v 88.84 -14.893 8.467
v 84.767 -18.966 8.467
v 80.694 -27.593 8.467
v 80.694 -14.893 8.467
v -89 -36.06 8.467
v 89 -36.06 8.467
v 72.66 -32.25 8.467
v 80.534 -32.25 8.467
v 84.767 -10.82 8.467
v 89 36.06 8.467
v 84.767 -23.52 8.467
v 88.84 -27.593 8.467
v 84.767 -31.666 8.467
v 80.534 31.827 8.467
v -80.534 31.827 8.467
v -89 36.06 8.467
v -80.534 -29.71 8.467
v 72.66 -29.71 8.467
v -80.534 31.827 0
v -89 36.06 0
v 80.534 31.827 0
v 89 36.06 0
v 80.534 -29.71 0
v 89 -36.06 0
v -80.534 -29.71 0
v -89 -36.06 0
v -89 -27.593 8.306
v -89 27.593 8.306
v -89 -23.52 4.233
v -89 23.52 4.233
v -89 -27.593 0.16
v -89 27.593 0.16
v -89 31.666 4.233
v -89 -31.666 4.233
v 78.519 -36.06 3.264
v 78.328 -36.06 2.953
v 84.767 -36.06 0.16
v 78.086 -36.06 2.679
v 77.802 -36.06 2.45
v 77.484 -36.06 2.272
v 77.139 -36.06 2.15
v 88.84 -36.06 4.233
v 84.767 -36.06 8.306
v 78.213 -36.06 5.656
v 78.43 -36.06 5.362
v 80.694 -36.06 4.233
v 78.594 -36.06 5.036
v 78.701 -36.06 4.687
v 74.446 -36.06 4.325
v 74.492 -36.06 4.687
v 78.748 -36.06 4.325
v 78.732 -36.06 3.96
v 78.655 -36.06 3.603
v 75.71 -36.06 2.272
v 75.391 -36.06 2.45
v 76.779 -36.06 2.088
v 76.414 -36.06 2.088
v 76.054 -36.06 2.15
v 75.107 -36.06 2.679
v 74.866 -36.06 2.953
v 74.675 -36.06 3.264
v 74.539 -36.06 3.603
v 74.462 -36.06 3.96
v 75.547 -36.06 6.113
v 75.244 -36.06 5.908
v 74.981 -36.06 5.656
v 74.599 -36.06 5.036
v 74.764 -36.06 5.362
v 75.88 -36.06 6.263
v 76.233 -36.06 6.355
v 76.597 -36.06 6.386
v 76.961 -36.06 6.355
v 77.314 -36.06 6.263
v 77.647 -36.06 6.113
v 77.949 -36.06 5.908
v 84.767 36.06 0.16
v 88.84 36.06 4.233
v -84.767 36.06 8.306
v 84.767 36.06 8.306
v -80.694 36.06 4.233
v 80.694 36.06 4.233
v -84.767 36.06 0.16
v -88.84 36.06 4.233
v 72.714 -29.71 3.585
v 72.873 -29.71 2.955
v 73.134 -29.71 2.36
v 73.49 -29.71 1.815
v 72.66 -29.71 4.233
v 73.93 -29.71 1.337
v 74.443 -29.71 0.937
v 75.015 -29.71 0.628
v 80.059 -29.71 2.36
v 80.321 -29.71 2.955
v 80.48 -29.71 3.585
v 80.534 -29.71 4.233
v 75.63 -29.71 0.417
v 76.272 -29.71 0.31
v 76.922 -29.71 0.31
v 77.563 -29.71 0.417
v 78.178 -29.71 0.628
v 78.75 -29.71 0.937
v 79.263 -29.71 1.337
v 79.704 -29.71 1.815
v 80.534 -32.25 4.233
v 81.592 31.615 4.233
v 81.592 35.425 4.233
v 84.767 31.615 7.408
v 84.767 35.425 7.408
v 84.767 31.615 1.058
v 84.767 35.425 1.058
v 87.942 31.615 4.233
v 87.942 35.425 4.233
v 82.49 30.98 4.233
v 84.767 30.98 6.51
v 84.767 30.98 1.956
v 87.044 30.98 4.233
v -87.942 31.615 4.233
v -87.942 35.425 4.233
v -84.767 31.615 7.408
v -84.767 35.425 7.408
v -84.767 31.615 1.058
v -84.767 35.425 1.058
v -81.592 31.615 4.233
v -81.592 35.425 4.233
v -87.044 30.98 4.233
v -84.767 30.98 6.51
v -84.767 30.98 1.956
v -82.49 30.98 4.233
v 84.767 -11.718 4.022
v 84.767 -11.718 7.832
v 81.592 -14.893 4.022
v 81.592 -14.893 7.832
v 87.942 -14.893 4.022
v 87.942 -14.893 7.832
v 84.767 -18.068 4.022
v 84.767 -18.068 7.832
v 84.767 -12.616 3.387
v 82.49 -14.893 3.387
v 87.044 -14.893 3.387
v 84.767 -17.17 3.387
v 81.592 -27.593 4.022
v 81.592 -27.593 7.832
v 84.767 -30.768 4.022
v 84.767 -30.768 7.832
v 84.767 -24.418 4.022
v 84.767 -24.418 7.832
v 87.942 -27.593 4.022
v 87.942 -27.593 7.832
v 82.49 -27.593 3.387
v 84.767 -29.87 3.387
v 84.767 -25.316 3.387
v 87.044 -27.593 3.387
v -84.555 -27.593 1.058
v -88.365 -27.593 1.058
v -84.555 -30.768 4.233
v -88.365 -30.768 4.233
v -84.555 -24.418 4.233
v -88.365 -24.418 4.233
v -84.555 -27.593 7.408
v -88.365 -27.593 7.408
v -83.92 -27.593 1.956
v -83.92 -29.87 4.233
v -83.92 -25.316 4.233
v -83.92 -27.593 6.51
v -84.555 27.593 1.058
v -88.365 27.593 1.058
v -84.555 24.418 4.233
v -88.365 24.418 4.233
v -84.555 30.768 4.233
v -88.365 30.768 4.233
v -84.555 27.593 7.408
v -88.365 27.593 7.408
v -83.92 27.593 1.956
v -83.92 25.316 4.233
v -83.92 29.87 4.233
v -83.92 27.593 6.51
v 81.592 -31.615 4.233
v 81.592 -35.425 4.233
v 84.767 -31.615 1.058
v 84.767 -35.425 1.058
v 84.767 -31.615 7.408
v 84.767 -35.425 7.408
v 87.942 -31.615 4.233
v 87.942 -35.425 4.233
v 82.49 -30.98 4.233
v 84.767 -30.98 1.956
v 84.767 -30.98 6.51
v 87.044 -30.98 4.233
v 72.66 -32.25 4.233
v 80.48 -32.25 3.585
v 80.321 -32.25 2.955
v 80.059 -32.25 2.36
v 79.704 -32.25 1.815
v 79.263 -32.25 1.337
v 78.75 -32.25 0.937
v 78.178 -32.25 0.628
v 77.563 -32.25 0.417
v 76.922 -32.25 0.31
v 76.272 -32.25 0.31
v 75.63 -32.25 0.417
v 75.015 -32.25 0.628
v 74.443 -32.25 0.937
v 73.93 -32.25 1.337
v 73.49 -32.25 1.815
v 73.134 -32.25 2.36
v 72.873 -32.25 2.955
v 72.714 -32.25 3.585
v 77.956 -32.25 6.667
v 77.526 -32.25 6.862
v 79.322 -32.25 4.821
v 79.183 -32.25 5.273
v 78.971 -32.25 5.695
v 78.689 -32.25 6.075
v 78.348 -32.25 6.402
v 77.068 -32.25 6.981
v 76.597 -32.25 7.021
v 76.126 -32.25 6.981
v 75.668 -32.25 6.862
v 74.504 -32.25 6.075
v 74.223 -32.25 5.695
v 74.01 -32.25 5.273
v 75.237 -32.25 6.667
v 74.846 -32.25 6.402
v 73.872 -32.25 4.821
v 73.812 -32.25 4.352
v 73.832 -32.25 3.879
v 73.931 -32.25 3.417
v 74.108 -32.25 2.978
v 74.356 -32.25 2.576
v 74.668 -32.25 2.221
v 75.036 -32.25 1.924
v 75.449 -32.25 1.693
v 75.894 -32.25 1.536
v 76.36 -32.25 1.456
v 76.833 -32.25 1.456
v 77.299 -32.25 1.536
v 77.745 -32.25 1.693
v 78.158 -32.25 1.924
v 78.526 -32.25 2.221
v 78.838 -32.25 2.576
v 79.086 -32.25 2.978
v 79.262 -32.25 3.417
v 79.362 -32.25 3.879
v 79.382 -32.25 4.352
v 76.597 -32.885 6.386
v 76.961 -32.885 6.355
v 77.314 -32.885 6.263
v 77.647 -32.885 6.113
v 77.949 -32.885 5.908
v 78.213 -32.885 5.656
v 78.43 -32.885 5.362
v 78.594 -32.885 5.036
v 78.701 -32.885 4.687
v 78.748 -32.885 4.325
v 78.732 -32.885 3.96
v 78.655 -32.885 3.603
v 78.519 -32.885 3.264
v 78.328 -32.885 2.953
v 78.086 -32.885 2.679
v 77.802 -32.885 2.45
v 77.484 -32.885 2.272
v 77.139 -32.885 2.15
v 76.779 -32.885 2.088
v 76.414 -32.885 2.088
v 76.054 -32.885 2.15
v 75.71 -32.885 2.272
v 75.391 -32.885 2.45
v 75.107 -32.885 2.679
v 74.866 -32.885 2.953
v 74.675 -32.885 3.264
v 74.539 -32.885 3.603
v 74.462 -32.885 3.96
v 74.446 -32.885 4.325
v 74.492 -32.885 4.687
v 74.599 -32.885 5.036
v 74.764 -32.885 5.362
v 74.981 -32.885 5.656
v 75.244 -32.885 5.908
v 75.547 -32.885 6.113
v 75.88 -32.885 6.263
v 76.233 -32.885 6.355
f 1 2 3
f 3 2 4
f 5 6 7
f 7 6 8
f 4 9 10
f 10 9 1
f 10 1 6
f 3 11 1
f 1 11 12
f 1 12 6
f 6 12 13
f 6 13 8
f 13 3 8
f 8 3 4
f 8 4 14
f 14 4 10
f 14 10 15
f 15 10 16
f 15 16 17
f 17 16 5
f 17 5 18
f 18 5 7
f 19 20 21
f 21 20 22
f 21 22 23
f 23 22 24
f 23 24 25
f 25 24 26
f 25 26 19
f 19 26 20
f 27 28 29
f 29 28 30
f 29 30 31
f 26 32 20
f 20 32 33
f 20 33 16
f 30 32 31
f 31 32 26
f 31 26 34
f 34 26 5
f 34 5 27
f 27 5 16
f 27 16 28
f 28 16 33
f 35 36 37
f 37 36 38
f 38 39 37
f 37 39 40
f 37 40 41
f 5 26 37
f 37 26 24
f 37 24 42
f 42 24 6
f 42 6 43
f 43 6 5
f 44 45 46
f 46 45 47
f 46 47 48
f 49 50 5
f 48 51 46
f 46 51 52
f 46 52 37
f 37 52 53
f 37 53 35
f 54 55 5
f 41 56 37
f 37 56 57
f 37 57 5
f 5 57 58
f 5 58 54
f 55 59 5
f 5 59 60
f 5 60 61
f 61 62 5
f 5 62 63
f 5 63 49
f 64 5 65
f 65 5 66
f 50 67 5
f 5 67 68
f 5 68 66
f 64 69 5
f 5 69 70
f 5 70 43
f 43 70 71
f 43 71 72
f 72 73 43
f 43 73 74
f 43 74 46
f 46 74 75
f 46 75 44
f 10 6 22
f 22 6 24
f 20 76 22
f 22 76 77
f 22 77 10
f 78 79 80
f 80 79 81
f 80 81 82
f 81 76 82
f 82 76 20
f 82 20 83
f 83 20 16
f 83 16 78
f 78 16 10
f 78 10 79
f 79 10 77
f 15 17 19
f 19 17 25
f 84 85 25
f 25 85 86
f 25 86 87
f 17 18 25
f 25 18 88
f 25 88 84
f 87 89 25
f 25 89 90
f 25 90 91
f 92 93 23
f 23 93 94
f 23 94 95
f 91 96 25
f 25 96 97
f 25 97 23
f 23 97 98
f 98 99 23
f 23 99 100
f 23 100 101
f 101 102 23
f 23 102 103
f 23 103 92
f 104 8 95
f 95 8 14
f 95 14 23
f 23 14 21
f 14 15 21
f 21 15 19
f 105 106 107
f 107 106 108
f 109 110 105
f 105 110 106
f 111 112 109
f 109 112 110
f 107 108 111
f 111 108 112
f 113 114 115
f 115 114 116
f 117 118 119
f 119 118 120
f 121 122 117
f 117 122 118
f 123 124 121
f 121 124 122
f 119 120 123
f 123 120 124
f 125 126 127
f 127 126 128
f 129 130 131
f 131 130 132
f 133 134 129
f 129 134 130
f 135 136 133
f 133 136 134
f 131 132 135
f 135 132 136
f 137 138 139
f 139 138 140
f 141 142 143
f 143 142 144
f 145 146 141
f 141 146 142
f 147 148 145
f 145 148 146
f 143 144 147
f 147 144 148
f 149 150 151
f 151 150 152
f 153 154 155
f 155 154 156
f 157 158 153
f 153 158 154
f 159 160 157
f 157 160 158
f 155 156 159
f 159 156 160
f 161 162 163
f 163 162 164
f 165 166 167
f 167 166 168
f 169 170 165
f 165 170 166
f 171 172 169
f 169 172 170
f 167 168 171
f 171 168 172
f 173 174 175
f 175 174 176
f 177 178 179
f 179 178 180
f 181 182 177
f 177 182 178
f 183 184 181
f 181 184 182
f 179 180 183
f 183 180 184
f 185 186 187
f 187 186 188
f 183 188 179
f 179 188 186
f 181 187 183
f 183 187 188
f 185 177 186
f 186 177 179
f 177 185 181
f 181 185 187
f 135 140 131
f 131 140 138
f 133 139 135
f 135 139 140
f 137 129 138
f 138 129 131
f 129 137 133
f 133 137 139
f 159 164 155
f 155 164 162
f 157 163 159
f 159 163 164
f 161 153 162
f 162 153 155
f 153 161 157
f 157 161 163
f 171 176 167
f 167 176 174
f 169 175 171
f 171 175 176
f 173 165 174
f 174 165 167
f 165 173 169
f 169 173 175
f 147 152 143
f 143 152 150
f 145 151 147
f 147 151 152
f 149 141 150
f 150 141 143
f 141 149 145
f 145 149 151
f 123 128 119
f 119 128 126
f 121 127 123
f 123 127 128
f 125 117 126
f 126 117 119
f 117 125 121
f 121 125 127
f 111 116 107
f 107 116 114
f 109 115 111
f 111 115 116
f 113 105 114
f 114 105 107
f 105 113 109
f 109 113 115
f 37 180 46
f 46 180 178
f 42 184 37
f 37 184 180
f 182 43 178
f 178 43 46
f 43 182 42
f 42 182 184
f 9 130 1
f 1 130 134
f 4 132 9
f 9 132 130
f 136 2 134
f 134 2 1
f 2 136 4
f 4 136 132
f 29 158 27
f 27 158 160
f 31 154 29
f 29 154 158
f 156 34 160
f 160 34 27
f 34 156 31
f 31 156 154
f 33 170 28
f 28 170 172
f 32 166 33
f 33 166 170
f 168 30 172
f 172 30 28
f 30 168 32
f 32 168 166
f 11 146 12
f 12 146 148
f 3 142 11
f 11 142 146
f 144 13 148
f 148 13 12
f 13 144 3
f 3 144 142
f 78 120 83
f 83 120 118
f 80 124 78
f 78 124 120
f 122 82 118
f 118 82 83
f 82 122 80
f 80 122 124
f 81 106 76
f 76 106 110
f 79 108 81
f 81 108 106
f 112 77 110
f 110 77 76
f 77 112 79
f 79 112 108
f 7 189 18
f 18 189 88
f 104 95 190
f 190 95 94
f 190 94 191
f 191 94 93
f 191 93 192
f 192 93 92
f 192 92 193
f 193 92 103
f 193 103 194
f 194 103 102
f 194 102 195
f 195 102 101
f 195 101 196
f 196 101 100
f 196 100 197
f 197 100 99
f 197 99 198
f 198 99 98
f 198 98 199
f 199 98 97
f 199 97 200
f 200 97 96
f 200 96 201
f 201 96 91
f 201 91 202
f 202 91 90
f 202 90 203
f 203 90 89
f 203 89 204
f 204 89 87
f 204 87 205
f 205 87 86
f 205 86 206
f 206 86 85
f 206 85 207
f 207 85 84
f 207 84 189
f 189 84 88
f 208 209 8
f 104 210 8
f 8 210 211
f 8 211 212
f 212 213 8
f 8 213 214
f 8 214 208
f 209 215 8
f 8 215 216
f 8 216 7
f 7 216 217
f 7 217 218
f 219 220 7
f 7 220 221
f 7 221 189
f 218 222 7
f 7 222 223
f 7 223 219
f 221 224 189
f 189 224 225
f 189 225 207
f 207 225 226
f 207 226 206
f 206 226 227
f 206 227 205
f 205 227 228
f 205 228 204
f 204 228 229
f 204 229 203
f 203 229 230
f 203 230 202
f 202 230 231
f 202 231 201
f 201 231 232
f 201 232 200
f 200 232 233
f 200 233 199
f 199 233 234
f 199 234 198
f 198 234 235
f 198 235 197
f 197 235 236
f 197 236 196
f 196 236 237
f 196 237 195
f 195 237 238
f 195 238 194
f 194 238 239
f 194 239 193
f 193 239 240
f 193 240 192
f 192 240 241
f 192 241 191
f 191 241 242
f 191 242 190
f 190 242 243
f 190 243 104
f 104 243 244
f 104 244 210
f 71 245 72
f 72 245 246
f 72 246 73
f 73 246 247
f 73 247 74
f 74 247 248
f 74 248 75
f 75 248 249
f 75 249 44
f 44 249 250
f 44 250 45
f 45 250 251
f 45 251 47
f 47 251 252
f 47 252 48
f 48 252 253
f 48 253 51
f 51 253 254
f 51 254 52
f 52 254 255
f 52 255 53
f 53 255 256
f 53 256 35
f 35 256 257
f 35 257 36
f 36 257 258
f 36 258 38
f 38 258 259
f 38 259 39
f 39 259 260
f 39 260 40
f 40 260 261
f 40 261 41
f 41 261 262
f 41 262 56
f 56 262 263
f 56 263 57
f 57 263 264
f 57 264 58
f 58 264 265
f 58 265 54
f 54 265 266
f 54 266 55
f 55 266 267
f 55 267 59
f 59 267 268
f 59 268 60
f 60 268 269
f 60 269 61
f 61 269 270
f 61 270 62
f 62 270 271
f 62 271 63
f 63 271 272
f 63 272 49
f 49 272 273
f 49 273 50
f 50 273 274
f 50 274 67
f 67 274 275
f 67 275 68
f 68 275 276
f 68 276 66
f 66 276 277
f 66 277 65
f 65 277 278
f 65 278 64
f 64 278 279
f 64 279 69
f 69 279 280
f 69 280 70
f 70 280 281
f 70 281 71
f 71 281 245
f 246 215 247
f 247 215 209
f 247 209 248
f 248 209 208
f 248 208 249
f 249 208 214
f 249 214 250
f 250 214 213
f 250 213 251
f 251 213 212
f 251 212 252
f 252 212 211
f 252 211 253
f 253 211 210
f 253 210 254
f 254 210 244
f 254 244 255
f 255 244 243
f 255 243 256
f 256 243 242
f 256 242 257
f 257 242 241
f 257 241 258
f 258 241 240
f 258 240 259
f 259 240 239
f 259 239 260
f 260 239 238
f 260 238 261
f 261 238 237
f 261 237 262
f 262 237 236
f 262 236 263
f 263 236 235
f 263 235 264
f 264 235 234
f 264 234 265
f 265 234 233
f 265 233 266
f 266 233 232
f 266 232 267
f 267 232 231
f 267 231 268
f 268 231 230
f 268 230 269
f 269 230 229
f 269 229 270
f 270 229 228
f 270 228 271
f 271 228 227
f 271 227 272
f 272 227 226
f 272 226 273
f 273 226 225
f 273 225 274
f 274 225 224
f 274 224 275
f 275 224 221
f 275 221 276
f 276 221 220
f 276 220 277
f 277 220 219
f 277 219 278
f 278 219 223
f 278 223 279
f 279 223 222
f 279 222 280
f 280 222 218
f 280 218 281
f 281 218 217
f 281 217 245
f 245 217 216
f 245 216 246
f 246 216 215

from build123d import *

# Parameters (mm, degrees)
SKETCH1_W                              = 178.0009902
SKETCH1_H                              = 72.120000116
SKETCH1_W_2                            = 161.067656866
SKETCH1_H_2                            = 61.536666783
BOSS_EXTRUDE1_DEPTH                    = 8.466666667
CUT_EXTRUDE1_DEPTH                     = 5.08
CUT_EXTRUDE2_DEPTH                     = 5.08
CUT_EXTRUDE3_DEPTH                     = 5.08
CUT_EXTRUDE4_DEPTH                     = 5.08
CHAMFER1_SIZE                          = 0.635
CUT_EXTRUDE5_DEPTH                     = 2.54
F_18_0_1695_DIAMETER_HOLE1_D           = 4.3053
F_18_0_1695_DIAMETER_HOLE1_DEPTH       = 3.81
F_18_0_1695_DIAMETER_HOLE1_CSINK_D     = 5.5753
F_18_0_1695_DIAMETER_HOLE1_CSINK_ANGLE = 90


with BuildPart() as part:
    # Sketch1 → Boss-Extrude1 (new body)
    with BuildSketch(Plane.XY):
        Rectangle(SKETCH1_W, SKETCH1_H)
        with Locations((0, 1.058333334)):
            Rectangle(SKETCH1_W_2, SKETCH1_H_2, mode=Mode.SUBTRACT)
    extrude(amount=BOSS_EXTRUDE1_DEPTH)

    # Sketch2 → Cut-Extrude1 (cut)
    with BuildSketch(Plane(origin=(0, 36.060000058, 0), x_dir=(1, 0, 0), z_dir=(0, 1, 0))):
        Polygon((-87.942161767, -4.233333333), (-84.767161767, -1.058333333), (-81.592161767, -4.233333333), (-84.767161767, -7.408333333), align=None)
        Polygon((81.592161767, -4.233333333), (84.767161767, -1.058333333), (87.942161767, -4.233333333), (84.767161767, -7.408333333), align=None)
    extrude(amount=-CUT_EXTRUDE1_DEPTH, mode=Mode.SUBTRACT)

    # Sketch3 → Cut-Extrude2 (cut)
    with BuildSketch(Plane.XY.offset(8.466666667)):
        Polygon((81.592161767, -27.593333392), (84.767161767, -24.418333392), (87.942161767, -27.593333392), (84.767161767, -30.768333392), align=None)
        Polygon((84.767161767, -11.718333392), (87.942161767, -14.893333392), (84.767161767, -18.068333392), (81.592161767, -14.893333392), align=None)
    extrude(amount=-CUT_EXTRUDE2_DEPTH, mode=Mode.SUBTRACT)

    # Sketch4 → Cut-Extrude3 (cut)
    with BuildSketch(Plane.ZY.offset(89.0004951)):
        Polygon((1.058333333, 27.593333392), (4.233333333, 30.768333392), (7.408333333, 27.593333392), (4.233333333, 24.418333392), align=None)
        Polygon((1.058333333, -27.593333392), (4.233333333, -24.418333392), (7.408333333, -27.593333392), (4.233333333, -30.768333392), align=None)
    extrude(amount=-CUT_EXTRUDE3_DEPTH, mode=Mode.SUBTRACT)

    # Sketch5 → Cut-Extrude4 (cut)
    with BuildSketch(Plane.XZ.offset(36.060000058)):
        Polygon((81.592161767, 4.233333333), (84.767161767, 7.408333333), (87.942161767, 4.233333333), (84.767161767, 1.058333333), align=None)
    extrude(amount=-CUT_EXTRUDE4_DEPTH, mode=Mode.SUBTRACT)

    # Chamfer1
    chamfer1_edges = [part.edges().sort_by_distance(p)[0] for p in [
        (83.179661767, -30.980000058, 2.645833333),
        (83.179661767, -30.980000058, 5.820833333),
        (86.354661767, -30.980000058, 5.820833333),
        (86.354661767, -30.980000058, 2.645833333),
        (83.179661767, -36.060000058, 2.645833333),
        (86.354661767, -36.060000058, 2.645833333),
        (86.354661767, -36.060000058, 5.820833333),
        (83.179661767, -36.060000058, 5.820833333),
        (-86.354661767, 30.980000058, 5.820833333),
        (-86.354661767, 30.980000058, 2.645833333),
        (-83.179661767, 30.980000058, 2.645833333),
        (-83.179661767, 30.980000058, 5.820833333),
        (-86.354661767, 36.060000058, 5.820833333),
        (-83.179661767, 36.060000058, 5.820833333),
        (-83.179661767, 36.060000058, 2.645833333),
        (-86.354661767, 36.060000058, 2.645833333),
        (83.179661767, 30.980000058, 5.820833333),
        (83.179661767, 30.980000058, 2.645833333),
        (86.354661767, 30.980000058, 2.645833333),
        (86.354661767, 30.980000058, 5.820833333),
        (83.179661767, 36.060000058, 5.820833333),
        (86.354661767, 36.060000058, 5.820833333),
        (86.354661767, 36.060000058, 2.645833333),
        (83.179661767, 36.060000058, 2.645833333),
        (83.179661767, -29.180833392, 3.386666667),
        (83.179661767, -26.005833392, 3.386666667),
        (86.354661767, -26.005833392, 3.386666667),
        (86.354661767, -29.180833392, 3.386666667),
        (83.179661767, -29.180833392, 8.466666667),
        (86.354661767, -29.180833392, 8.466666667),
        (86.354661767, -26.005833392, 8.466666667),
        (83.179661767, -26.005833392, 8.466666667),
        (83.179661767, -13.305833392, 3.386666667),
        (86.354661767, -13.305833392, 3.386666667),
        (86.354661767, -16.480833392, 3.386666667),
        (83.179661767, -16.480833392, 3.386666667),
        (83.179661767, -13.305833392, 8.466666667),
        (83.179661767, -16.480833392, 8.466666667),
        (86.354661767, -16.480833392, 8.466666667),
        (86.354661767, -13.305833392, 8.466666667),
        (-83.9204951, 26.005833392, 2.645833333),
        (-83.9204951, 29.180833392, 2.645833333),
        (-83.9204951, 29.180833392, 5.820833333),
        (-83.9204951, 26.005833392, 5.820833333),
        (-89.0004951, 26.005833392, 2.645833333),
        (-89.0004951, 26.005833392, 5.820833333),
        (-89.0004951, 29.180833392, 5.820833333),
        (-89.0004951, 29.180833392, 2.645833333),
        (-83.9204951, -29.180833392, 2.645833333),
        (-83.9204951, -26.005833392, 2.645833333),
        (-83.9204951, -26.005833392, 5.820833333),
        (-83.9204951, -29.180833392, 5.820833333),
        (-89.0004951, -29.180833392, 2.645833333),
        (-89.0004951, -29.180833392, 5.820833333),
        (-89.0004951, -26.005833392, 5.820833333),
        (-89.0004951, -26.005833392, 2.645833333),
    ]]
    chamfer(chamfer1_edges, length=CHAMFER1_SIZE)

    # Sketch6 → Cut-Extrude5 (cut)
    with BuildSketch(Plane(origin=(0, -29.710000058, 0), x_dir=(1, 0, 0), z_dir=(0, 1, 0))):
        with BuildLine():
            Line((72.659828433, -4.233333249), (72.659828433, -8.466666667))
            Line((72.659828433, -8.466666667), (80.533828433, -8.466666667))
            Line((80.533828433, -8.466666667), (80.533828433, -4.233333249))
            ThreePointArc((80.533828433, -4.233333249), (76.596828433, -0.296333249), (72.659828433, -4.233333249))
        make_face()
    extrude(amount=-CUT_EXTRUDE5_DEPTH, mode=Mode.SUBTRACT)

    # #18 (0.1695) Diameter Hole1
    with Locations(Plane(origin=(0, -32.250000058, 0), x_dir=(1, 0, 0), z_dir=(0, 1, 0))):
        with Locations((76.596828433, -4.233333249)):
            CounterSinkHole(F_18_0_1695_DIAMETER_HOLE1_D / 2, F_18_0_1695_DIAMETER_HOLE1_CSINK_D / 2, depth=F_18_0_1695_DIAMETER_HOLE1_DEPTH, counter_sink_angle=F_18_0_1695_DIAMETER_HOLE1_CSINK_ANGLE)


solid = part.part
